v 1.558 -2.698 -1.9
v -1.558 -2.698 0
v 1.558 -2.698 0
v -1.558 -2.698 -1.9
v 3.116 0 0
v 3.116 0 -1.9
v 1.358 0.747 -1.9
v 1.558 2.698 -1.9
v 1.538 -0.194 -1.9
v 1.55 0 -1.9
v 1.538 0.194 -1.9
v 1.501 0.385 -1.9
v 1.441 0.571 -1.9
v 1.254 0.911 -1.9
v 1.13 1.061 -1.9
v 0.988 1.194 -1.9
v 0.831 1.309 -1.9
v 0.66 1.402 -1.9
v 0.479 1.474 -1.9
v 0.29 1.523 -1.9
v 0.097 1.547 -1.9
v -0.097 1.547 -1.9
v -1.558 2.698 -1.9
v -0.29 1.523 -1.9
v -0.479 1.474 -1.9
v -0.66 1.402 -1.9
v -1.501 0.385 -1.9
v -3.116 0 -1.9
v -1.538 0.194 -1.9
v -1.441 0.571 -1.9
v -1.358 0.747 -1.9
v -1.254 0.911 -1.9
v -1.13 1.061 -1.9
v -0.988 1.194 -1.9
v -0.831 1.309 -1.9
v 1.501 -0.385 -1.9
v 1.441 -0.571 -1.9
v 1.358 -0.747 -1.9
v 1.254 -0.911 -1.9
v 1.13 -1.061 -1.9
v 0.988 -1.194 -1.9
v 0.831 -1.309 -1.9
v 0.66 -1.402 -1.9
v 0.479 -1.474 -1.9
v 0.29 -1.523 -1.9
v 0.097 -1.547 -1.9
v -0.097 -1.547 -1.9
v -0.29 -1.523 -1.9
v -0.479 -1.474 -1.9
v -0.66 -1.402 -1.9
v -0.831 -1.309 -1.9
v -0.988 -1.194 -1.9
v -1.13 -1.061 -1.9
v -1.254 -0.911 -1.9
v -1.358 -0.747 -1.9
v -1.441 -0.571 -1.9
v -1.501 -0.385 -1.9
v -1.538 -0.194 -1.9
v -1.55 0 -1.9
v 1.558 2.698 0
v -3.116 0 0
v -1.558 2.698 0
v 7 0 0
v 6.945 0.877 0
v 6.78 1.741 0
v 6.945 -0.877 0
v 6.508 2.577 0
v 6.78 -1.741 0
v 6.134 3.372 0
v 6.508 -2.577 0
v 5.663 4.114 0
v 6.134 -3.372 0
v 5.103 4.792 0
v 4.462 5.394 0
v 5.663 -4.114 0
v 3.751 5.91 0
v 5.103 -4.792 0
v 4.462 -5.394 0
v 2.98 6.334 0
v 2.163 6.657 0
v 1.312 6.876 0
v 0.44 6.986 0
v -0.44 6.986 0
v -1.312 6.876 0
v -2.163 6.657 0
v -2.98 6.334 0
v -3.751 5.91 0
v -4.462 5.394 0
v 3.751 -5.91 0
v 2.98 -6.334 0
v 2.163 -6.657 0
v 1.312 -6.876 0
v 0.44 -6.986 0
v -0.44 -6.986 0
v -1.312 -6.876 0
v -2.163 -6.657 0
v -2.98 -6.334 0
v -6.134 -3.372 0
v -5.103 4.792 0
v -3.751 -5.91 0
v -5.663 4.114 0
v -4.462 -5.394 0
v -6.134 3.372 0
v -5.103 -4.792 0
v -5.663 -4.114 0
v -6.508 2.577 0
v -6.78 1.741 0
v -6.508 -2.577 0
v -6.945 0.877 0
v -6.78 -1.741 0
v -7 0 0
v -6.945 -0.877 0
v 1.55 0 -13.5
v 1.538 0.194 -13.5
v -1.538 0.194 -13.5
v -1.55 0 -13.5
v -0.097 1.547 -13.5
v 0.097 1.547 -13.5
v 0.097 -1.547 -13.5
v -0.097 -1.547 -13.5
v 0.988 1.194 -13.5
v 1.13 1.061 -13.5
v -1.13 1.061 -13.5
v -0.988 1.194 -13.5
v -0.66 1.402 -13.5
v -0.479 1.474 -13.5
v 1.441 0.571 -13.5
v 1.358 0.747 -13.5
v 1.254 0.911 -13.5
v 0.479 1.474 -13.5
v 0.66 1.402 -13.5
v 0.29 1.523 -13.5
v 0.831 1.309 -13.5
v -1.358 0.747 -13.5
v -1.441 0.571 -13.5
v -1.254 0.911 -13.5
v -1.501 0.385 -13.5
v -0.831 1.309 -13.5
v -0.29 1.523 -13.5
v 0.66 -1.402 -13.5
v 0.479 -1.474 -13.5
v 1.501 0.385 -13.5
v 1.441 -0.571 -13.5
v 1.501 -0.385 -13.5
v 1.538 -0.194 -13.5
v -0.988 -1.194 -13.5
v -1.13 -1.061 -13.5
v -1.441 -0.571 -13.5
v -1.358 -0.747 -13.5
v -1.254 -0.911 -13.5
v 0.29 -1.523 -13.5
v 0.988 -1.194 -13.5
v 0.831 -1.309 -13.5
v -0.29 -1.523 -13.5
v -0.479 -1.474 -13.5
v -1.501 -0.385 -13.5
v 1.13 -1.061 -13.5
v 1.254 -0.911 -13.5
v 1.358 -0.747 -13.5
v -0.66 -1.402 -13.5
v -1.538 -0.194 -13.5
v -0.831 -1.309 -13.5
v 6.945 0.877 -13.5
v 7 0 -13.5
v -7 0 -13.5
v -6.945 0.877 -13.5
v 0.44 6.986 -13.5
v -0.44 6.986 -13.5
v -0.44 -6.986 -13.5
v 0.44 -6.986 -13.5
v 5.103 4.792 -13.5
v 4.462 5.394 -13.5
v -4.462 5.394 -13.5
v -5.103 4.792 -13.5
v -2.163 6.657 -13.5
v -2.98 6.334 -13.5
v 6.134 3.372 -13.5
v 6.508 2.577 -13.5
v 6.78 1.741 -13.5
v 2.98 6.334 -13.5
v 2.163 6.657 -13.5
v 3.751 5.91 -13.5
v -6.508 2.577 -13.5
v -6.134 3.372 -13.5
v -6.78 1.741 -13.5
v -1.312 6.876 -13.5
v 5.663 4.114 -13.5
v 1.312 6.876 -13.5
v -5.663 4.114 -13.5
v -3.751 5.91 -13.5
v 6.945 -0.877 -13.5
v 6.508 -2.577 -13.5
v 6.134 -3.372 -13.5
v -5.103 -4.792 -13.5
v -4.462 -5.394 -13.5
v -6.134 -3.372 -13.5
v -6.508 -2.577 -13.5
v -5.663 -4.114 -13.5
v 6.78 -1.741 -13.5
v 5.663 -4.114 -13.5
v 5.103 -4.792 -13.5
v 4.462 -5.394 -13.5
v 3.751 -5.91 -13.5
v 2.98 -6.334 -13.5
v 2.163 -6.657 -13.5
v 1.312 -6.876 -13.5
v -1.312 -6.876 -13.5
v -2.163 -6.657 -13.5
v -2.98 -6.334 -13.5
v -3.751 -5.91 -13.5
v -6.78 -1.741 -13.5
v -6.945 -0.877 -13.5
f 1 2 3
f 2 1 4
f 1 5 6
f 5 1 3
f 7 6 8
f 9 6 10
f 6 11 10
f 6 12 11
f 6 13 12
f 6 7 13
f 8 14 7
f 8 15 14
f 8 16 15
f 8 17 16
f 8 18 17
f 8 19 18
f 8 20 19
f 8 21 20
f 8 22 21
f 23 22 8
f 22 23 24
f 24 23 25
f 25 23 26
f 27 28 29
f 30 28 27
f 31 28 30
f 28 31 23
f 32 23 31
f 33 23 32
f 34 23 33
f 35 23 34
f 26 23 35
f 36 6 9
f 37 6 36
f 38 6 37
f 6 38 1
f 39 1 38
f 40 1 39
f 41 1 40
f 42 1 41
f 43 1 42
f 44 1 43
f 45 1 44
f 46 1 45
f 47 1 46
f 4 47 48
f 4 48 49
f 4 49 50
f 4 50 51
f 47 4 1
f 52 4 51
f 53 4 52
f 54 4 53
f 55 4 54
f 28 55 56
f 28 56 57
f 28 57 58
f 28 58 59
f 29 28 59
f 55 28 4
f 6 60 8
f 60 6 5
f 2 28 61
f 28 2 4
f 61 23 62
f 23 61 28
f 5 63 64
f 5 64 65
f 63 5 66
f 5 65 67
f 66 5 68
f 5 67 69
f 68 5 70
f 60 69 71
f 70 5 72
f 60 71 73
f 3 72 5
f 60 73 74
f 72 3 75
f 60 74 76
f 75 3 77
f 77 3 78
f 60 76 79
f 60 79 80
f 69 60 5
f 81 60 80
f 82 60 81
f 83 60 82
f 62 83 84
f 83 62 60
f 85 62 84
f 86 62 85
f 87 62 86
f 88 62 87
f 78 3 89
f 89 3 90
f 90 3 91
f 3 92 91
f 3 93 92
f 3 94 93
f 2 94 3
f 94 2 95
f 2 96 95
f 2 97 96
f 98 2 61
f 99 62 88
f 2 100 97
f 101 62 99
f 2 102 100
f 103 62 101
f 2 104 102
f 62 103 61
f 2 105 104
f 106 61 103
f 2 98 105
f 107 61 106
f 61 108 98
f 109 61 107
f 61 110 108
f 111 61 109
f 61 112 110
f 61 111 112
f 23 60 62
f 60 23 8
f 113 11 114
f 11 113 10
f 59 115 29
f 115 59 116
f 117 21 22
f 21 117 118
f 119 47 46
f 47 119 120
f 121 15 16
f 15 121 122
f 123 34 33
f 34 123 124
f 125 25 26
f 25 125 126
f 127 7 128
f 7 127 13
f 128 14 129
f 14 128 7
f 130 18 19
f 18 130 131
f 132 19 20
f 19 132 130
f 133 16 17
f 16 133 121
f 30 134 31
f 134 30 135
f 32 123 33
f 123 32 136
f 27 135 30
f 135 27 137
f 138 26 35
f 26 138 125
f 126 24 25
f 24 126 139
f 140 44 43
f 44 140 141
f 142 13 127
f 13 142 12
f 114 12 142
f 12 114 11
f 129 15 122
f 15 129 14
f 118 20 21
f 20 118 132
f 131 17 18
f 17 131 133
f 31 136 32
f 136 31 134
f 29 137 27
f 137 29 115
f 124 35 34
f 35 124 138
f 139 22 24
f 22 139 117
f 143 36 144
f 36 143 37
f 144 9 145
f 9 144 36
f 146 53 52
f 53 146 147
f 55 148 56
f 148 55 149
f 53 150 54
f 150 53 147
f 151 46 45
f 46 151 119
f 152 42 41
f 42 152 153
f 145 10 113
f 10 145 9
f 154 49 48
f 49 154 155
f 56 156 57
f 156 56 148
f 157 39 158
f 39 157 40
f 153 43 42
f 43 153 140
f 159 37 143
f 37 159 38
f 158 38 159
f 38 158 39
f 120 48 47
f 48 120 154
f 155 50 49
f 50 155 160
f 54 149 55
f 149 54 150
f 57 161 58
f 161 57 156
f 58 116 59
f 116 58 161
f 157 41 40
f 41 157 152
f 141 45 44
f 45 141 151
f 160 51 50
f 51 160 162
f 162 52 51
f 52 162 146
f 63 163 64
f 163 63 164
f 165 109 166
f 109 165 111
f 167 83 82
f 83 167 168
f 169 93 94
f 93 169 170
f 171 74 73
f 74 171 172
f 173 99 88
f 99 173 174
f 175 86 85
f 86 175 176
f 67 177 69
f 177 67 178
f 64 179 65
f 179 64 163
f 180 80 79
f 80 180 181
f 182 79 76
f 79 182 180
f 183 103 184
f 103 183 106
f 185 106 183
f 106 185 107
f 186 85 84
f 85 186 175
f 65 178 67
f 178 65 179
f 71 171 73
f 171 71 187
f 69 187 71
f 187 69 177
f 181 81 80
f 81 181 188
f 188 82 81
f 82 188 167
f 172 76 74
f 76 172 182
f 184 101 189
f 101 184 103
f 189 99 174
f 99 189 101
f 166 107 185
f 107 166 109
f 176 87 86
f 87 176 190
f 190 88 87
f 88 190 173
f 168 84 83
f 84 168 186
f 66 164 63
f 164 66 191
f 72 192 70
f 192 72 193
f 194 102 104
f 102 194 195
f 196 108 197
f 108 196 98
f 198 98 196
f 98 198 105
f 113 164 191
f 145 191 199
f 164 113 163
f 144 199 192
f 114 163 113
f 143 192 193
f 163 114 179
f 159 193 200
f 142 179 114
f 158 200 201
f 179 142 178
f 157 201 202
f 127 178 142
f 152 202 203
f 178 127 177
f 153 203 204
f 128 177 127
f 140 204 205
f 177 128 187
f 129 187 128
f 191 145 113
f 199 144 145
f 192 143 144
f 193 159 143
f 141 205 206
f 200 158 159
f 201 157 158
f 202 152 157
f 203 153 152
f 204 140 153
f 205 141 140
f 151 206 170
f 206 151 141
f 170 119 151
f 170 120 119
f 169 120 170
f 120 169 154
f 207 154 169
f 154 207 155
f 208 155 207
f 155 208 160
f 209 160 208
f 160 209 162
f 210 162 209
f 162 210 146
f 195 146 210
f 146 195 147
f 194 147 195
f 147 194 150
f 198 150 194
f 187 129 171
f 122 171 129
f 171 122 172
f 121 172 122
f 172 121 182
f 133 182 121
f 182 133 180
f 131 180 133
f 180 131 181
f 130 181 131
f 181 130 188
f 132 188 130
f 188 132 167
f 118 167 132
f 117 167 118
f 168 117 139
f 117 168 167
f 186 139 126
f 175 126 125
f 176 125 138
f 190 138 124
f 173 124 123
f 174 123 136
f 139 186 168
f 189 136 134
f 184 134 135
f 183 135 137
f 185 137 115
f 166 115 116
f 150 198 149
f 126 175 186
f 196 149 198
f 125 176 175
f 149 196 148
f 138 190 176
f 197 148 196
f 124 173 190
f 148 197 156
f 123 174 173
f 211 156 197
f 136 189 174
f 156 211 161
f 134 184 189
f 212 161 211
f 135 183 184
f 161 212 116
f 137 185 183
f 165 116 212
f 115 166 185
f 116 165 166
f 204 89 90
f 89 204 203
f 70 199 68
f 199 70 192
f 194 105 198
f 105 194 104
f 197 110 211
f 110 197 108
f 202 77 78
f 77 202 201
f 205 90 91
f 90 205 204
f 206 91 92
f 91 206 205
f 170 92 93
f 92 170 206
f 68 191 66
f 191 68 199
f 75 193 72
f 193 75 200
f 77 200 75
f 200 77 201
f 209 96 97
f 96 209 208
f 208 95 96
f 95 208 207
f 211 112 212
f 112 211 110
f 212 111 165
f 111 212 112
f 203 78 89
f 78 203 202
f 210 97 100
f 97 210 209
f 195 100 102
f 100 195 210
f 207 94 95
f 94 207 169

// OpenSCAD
$fn = 50;

difference() {
	union() {
		translate(v = [0, 0, -13.5]) {
			cylinder(h = 13.5, r = 7.0);
		}
	}
	union() {
		translate(v = [0, 0, 0]) {
			rotate(a = [0, 0, 0]) {
				difference() {
					union() {
						translate(v = [0, 0, -1.9]) {
							linear_extrude(height = 1.9) {
								polygon(points = [[3.1158, 0.0], [1.5579000000000005, 2.698361953111554], [-1.5578999999999994, 2.6983619531115544], [-3.1158, 3.815754496783323e-16], [-1.5579000000000014, -2.6983619531115535], [1.557899999999998, -2.6983619531115552]]);
							}
						}
					}
					union();
				}
			}
		}
		#translate(v = [0, 0, -100.0]) {
			cylinder(h = 200, r = 1.55);
		}
	}
}
